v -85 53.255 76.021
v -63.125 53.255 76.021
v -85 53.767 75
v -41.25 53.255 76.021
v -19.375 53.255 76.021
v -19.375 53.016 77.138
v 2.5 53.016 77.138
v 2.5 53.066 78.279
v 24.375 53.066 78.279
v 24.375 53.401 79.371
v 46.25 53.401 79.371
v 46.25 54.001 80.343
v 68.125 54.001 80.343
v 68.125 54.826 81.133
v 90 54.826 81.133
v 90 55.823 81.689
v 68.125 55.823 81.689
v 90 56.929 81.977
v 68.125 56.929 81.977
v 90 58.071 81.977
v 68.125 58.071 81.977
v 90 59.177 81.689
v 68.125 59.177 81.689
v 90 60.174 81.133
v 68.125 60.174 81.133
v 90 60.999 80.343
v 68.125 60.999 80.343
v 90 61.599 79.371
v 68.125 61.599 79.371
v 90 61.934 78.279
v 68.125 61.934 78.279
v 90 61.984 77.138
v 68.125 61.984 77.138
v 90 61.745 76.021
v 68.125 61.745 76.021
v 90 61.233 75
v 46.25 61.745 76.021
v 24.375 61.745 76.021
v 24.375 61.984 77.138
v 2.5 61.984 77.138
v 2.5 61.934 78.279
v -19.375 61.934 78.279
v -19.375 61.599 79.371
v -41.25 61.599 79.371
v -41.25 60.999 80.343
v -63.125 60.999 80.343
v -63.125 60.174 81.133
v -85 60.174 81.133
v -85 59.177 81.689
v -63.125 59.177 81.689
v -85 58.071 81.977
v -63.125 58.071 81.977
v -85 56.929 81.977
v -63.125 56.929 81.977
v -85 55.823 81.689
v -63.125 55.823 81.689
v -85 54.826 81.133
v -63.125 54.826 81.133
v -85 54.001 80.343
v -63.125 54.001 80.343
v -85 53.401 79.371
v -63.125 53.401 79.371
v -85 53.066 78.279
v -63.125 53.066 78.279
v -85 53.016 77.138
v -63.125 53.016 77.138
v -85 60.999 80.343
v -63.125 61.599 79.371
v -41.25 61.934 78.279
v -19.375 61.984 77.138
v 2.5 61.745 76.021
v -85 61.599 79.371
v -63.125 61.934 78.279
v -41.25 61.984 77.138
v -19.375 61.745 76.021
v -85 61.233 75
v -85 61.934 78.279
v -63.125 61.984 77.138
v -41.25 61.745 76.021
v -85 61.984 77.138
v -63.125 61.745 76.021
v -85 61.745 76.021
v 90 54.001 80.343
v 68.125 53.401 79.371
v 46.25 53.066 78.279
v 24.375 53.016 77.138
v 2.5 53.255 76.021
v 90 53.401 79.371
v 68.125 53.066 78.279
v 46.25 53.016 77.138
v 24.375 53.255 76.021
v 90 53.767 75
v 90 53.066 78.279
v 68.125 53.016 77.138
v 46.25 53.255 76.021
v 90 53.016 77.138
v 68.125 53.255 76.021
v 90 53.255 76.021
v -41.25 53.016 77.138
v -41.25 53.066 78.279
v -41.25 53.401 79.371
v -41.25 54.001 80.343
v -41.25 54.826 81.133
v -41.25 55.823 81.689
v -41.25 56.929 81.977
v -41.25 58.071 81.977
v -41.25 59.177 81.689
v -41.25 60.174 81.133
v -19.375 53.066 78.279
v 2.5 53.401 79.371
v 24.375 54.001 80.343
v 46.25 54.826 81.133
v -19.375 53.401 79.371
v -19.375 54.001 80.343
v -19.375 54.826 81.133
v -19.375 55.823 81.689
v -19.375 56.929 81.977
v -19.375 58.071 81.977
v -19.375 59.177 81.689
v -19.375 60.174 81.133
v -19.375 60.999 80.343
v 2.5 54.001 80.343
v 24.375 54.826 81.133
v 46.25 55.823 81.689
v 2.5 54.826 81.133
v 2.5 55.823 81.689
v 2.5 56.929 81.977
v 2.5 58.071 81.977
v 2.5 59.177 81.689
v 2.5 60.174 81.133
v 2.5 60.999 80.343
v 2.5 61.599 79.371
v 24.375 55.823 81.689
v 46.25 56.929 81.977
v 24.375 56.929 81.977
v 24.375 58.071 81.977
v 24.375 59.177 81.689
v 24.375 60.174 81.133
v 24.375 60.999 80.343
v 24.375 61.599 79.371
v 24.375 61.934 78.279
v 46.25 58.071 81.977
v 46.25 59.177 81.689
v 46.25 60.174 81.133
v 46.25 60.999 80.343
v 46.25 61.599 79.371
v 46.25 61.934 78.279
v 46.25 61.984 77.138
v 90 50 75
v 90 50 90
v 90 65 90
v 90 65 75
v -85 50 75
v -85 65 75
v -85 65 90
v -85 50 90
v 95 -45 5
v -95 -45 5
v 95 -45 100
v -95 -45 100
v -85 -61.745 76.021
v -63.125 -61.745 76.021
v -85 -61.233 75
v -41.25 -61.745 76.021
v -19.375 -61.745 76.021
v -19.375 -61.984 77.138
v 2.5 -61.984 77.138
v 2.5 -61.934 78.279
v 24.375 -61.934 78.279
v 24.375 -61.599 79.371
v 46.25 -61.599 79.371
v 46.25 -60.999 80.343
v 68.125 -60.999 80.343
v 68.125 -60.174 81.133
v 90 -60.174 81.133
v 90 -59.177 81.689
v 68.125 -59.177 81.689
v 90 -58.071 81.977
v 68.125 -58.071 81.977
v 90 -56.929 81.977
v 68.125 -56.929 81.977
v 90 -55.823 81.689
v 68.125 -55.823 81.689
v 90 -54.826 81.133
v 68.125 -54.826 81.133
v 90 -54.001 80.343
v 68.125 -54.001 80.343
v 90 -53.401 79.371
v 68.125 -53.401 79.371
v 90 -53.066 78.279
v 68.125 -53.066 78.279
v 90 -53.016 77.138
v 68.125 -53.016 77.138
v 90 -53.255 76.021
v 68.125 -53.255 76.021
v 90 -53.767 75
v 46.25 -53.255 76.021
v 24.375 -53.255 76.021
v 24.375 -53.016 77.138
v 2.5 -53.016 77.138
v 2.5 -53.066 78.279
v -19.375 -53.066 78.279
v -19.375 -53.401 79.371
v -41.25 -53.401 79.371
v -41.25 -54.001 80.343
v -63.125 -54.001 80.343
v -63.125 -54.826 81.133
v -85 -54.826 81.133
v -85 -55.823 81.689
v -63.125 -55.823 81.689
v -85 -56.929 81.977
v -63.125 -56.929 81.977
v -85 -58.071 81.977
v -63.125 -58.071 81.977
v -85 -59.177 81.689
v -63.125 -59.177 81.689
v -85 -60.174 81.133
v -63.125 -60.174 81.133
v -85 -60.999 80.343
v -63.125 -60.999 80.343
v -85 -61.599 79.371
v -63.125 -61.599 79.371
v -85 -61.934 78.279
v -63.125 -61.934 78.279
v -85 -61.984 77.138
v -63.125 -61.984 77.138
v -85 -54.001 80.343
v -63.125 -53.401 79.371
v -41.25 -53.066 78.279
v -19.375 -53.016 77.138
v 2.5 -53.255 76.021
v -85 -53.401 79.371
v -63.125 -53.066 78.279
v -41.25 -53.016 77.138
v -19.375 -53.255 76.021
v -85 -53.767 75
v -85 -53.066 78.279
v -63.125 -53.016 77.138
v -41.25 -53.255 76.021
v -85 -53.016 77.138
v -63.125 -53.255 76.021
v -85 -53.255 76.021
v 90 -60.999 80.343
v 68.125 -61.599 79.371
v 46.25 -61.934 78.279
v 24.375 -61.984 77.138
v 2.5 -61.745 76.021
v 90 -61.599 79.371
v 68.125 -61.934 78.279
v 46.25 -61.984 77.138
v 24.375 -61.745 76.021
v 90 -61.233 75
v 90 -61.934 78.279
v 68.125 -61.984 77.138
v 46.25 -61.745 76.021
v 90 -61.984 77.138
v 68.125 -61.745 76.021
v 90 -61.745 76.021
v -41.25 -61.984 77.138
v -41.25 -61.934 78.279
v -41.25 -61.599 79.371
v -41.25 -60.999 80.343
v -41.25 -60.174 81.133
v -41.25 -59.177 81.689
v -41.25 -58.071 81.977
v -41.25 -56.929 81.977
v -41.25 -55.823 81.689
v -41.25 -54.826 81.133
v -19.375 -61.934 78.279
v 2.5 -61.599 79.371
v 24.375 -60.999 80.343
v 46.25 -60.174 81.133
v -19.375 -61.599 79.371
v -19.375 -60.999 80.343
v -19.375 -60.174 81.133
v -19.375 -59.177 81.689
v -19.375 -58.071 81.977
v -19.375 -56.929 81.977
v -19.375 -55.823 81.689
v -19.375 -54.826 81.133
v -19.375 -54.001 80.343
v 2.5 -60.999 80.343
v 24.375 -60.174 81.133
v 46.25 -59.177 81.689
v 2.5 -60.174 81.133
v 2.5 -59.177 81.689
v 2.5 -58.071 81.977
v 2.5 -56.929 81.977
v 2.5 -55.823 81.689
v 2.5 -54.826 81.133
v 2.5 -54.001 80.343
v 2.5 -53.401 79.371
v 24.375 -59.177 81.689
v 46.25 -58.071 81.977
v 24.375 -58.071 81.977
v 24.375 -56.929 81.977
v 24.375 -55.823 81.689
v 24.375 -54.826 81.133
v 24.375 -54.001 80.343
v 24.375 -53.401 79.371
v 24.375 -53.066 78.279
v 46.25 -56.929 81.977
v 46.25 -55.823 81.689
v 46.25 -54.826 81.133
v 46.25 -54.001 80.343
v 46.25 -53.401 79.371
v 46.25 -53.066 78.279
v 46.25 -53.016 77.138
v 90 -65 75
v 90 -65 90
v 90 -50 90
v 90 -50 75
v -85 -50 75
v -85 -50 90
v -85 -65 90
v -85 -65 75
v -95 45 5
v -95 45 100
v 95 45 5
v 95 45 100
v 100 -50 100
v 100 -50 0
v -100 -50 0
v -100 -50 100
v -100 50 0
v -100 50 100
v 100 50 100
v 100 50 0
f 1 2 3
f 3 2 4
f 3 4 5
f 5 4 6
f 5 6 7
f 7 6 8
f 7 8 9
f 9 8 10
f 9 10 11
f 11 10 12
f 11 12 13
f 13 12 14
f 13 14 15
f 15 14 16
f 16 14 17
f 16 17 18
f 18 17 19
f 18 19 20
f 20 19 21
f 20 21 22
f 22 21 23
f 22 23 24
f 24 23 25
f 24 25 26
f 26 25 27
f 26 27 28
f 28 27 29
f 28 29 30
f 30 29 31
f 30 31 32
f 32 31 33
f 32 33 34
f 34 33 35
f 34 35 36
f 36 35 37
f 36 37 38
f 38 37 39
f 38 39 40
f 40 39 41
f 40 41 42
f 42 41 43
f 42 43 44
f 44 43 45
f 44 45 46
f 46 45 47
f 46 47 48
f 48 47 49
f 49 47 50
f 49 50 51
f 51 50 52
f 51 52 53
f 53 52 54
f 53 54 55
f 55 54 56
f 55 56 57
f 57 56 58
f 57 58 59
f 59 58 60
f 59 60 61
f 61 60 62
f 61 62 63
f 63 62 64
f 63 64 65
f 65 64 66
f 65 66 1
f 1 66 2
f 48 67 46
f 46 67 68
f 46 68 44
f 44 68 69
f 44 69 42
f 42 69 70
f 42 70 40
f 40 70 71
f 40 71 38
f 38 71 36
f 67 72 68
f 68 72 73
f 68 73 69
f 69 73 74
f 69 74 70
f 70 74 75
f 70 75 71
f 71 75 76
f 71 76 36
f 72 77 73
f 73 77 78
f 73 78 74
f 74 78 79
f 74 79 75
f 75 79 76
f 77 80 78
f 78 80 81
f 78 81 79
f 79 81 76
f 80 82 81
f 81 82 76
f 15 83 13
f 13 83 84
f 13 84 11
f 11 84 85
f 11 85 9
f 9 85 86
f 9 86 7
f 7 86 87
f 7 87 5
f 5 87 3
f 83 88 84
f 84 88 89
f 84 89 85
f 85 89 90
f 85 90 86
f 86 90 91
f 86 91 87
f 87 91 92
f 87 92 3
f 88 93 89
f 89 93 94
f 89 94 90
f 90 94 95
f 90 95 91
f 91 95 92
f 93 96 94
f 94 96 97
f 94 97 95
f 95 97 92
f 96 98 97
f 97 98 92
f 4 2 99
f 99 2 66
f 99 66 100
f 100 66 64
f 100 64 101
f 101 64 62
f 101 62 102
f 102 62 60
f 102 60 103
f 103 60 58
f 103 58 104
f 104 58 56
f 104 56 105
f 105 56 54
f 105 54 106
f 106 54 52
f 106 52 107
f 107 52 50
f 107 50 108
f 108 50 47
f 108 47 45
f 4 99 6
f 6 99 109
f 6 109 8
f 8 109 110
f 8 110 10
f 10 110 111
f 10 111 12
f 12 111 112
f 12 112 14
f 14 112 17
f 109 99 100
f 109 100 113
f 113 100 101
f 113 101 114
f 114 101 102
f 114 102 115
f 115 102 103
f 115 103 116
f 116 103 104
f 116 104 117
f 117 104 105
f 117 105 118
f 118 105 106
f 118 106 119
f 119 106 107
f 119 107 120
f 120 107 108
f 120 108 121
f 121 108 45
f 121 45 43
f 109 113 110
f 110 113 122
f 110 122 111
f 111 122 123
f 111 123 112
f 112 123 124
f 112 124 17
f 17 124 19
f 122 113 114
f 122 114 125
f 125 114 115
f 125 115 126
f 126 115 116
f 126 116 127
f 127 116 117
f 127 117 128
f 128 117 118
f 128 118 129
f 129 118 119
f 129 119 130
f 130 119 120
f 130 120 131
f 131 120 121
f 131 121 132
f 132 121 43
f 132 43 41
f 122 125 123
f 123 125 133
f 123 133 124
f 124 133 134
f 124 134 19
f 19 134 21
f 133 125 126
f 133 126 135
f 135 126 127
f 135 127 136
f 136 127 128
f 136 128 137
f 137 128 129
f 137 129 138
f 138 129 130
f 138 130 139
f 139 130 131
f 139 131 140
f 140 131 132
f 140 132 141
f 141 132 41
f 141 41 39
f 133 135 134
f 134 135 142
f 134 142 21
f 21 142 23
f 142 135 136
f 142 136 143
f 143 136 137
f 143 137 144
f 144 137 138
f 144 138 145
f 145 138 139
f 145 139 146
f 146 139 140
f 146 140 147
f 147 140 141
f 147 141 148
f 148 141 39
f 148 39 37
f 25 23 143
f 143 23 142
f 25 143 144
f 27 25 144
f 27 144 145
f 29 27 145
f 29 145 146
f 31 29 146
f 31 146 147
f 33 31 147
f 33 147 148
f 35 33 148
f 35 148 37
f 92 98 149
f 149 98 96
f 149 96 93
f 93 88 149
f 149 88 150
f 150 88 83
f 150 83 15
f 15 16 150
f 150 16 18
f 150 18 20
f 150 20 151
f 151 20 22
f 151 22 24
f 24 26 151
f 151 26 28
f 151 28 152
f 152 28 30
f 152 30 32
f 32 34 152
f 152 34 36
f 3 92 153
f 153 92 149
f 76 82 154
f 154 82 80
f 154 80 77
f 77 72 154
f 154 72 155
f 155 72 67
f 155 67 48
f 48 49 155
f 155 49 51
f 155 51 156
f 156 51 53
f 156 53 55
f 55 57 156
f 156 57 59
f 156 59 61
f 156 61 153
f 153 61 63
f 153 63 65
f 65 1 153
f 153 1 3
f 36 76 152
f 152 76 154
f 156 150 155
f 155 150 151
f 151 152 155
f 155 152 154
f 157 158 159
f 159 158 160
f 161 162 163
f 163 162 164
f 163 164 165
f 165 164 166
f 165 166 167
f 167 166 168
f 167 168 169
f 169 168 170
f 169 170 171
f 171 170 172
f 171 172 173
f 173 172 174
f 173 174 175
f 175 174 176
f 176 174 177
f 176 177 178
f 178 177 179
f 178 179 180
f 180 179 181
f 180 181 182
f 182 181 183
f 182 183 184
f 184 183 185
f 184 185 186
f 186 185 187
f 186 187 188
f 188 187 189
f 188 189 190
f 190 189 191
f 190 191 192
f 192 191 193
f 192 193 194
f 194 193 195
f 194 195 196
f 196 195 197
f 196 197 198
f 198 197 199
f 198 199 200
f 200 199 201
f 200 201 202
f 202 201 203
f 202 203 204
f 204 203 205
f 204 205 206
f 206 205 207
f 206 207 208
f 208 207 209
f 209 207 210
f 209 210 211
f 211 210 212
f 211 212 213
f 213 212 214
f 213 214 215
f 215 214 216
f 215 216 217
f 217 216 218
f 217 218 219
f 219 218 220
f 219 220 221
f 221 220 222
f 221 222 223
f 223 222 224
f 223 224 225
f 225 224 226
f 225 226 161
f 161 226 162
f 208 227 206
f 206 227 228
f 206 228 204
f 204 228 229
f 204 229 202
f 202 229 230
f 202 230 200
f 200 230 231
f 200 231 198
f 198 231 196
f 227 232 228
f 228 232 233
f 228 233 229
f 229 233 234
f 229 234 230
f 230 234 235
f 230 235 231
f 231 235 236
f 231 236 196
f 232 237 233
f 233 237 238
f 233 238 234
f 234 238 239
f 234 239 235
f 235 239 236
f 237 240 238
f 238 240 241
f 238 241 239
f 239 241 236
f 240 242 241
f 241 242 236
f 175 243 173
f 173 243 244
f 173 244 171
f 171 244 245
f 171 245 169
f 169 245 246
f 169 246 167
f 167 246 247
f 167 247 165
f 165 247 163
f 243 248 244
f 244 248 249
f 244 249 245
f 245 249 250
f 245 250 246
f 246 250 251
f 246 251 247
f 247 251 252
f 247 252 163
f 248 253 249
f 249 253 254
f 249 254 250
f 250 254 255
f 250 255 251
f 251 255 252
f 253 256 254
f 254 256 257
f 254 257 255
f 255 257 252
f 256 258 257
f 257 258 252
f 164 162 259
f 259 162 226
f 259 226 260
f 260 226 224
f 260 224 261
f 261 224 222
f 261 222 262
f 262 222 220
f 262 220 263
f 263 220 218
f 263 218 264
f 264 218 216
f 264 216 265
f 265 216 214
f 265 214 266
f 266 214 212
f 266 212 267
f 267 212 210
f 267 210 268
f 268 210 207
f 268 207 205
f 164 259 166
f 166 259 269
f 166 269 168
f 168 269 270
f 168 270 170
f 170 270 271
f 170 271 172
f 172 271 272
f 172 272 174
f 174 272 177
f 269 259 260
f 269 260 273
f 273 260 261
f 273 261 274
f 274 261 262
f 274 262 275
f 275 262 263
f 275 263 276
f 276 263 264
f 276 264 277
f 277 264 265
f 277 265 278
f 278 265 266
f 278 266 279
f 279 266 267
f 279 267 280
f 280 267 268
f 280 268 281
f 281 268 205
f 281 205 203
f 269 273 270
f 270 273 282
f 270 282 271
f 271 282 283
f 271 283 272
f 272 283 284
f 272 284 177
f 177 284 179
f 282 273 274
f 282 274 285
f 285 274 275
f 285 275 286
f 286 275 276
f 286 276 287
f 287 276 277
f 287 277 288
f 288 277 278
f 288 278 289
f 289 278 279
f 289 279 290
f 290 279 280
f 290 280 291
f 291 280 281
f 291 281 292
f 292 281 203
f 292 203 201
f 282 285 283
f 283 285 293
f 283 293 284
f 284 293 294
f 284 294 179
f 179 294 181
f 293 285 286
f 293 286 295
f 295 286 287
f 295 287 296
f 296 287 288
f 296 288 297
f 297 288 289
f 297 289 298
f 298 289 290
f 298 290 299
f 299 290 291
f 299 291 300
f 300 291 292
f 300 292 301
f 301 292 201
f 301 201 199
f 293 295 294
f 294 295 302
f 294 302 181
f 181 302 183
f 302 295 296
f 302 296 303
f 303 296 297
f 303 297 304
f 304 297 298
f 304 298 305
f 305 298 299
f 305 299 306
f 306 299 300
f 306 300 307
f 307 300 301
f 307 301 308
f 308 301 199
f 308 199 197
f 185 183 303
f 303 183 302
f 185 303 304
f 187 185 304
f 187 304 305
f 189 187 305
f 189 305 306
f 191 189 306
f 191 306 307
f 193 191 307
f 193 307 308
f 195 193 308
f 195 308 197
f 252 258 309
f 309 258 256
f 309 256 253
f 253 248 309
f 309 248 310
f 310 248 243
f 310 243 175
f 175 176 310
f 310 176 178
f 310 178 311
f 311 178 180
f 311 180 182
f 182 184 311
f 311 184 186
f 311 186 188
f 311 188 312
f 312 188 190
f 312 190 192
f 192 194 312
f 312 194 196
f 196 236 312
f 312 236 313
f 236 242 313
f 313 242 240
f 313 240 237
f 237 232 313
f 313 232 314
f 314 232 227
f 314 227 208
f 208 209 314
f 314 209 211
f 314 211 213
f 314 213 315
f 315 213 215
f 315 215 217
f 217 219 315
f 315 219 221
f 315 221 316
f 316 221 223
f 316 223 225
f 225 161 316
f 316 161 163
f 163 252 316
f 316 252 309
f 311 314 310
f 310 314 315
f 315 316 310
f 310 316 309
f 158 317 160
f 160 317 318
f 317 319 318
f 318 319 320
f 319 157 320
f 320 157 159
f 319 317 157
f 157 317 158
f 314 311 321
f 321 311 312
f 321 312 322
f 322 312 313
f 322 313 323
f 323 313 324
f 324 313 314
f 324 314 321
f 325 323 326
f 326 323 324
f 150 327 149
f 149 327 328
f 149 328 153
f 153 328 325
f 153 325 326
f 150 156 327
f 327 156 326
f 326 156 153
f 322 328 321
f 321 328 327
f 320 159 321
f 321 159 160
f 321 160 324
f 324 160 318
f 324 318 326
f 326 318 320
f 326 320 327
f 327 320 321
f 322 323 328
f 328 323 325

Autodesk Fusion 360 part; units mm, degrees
sketch "Esquisse1" plane through (0, 0, 0) normal (0, 0, 1) x (1, 0, 0)
  line L0 (-20, 20) -> (180, 20)
  line L1 (180, 20) -> (180, -80)
  line L2 (180, -80) -> (-20, -80)
  line L3 (-20, -80) -> (-20, 20)
  dimension "d7" = 200
  dimension "d8" = 100
sketch "Esquisse2" plane through (180, 0, 0) normal (1, 0, 0) x (0, 1, 0)
  line L0 (-80, 0) -> (20, 0)
  line L1 (20, 0) -> (20, 100)
  line L2 (20, 100) -> (-80, 100)
  line L3 (-80, 100) -> (-80, 0)
  circle A0 centre (-105, 61.7948) radius 25
  dimension "d13" = 50
sketch "Esquisse3" plane through (0, 0, 0) normal (0, 0, 1) x (1, 0, 0)
  line L0 (100, 50) -> (-100, 50)
  line L1 (-100, 50) -> (-100, -50)
  line L2 (-100, -50) -> (100, -50)
  line L3 (100, -50) -> (100, 50)
  line L4 (100, 50) -> (-100, -50) construction
  line L5 (-100, 50) -> (100, -50) construction
  dimension "d16" = 200
  dimension "d17" = 100
extrude "Extrusion3" add sketch "Esquisse3" along normal blind 100
shell "Coque2" thickness 5 removed faces 1 at (-33.3333, 16.6667, 100)
sketch "Esquisse4" plane through (0, -50, 0) normal (0, -1, 0) x (1, 0, 0)
  line L0 (-100, 0) -> (100, 0)
  line L1 (100, 0) -> (100, 100)
  line L2 (100, 100) -> (-100, 100)
  line L3 (-100, 100) -> (-100, 0)
  line L4 (-85, 90) -> (90, 90)
  line L5 (90, 90) -> (90, 75)
  line L6 (90, 75) -> (-85, 75)
  line L7 (-85, 90) -> (-85, 75)
extrude "Extrusion4" add sketch "Esquisse4" along normal blind 15 contours L4 L5 L6 L7
sketch "Esquisse5" plane through (90, 0, 0) normal (1, 0, 0) x (0, 1, 0)
  line L0 (-50, 75) -> (-50, 90)
  line L1 (-50, 90) -> (-65, 90)
  line L2 (-65, 90) -> (-65, 75)
  line L3 (-65, 75) -> (-50, 75)
  circle A0 centre (-57.5, 77.5132) radius 4.5
  dimension "d23" = 9
extrude "Extrusion5" cut sketch "Esquisse5" against normal blind 180 contours L3 A0 picked at (-57.7191, 77.5283)
mirror "Symétrie miroir1" about plane through (0, 0, 0) normal (0, 1, 0) of "Extrusion4", "Extrusion5"
extrude "Extrusion2" [suppressed]
equation "largeur = 100 mm"
equation "hauteur = 100 mm"
equation "longueur = 200 mm"
equation "epaisseurb = 5 mm"
equation "rayon = 50 mm"
equation "fixation = 5 mm"
equation "d7 = longueur"
equation "d8 = largeur"
equation "epaisseurinterieur = 5 mm"
equation "d13 = rayon"
equation "d14 = -longueur"
equation "d16 = longueur"
equation "d17 = largeur"
equation "d18 = hauteur"
equation "d20 = epaisseurinterieur"
